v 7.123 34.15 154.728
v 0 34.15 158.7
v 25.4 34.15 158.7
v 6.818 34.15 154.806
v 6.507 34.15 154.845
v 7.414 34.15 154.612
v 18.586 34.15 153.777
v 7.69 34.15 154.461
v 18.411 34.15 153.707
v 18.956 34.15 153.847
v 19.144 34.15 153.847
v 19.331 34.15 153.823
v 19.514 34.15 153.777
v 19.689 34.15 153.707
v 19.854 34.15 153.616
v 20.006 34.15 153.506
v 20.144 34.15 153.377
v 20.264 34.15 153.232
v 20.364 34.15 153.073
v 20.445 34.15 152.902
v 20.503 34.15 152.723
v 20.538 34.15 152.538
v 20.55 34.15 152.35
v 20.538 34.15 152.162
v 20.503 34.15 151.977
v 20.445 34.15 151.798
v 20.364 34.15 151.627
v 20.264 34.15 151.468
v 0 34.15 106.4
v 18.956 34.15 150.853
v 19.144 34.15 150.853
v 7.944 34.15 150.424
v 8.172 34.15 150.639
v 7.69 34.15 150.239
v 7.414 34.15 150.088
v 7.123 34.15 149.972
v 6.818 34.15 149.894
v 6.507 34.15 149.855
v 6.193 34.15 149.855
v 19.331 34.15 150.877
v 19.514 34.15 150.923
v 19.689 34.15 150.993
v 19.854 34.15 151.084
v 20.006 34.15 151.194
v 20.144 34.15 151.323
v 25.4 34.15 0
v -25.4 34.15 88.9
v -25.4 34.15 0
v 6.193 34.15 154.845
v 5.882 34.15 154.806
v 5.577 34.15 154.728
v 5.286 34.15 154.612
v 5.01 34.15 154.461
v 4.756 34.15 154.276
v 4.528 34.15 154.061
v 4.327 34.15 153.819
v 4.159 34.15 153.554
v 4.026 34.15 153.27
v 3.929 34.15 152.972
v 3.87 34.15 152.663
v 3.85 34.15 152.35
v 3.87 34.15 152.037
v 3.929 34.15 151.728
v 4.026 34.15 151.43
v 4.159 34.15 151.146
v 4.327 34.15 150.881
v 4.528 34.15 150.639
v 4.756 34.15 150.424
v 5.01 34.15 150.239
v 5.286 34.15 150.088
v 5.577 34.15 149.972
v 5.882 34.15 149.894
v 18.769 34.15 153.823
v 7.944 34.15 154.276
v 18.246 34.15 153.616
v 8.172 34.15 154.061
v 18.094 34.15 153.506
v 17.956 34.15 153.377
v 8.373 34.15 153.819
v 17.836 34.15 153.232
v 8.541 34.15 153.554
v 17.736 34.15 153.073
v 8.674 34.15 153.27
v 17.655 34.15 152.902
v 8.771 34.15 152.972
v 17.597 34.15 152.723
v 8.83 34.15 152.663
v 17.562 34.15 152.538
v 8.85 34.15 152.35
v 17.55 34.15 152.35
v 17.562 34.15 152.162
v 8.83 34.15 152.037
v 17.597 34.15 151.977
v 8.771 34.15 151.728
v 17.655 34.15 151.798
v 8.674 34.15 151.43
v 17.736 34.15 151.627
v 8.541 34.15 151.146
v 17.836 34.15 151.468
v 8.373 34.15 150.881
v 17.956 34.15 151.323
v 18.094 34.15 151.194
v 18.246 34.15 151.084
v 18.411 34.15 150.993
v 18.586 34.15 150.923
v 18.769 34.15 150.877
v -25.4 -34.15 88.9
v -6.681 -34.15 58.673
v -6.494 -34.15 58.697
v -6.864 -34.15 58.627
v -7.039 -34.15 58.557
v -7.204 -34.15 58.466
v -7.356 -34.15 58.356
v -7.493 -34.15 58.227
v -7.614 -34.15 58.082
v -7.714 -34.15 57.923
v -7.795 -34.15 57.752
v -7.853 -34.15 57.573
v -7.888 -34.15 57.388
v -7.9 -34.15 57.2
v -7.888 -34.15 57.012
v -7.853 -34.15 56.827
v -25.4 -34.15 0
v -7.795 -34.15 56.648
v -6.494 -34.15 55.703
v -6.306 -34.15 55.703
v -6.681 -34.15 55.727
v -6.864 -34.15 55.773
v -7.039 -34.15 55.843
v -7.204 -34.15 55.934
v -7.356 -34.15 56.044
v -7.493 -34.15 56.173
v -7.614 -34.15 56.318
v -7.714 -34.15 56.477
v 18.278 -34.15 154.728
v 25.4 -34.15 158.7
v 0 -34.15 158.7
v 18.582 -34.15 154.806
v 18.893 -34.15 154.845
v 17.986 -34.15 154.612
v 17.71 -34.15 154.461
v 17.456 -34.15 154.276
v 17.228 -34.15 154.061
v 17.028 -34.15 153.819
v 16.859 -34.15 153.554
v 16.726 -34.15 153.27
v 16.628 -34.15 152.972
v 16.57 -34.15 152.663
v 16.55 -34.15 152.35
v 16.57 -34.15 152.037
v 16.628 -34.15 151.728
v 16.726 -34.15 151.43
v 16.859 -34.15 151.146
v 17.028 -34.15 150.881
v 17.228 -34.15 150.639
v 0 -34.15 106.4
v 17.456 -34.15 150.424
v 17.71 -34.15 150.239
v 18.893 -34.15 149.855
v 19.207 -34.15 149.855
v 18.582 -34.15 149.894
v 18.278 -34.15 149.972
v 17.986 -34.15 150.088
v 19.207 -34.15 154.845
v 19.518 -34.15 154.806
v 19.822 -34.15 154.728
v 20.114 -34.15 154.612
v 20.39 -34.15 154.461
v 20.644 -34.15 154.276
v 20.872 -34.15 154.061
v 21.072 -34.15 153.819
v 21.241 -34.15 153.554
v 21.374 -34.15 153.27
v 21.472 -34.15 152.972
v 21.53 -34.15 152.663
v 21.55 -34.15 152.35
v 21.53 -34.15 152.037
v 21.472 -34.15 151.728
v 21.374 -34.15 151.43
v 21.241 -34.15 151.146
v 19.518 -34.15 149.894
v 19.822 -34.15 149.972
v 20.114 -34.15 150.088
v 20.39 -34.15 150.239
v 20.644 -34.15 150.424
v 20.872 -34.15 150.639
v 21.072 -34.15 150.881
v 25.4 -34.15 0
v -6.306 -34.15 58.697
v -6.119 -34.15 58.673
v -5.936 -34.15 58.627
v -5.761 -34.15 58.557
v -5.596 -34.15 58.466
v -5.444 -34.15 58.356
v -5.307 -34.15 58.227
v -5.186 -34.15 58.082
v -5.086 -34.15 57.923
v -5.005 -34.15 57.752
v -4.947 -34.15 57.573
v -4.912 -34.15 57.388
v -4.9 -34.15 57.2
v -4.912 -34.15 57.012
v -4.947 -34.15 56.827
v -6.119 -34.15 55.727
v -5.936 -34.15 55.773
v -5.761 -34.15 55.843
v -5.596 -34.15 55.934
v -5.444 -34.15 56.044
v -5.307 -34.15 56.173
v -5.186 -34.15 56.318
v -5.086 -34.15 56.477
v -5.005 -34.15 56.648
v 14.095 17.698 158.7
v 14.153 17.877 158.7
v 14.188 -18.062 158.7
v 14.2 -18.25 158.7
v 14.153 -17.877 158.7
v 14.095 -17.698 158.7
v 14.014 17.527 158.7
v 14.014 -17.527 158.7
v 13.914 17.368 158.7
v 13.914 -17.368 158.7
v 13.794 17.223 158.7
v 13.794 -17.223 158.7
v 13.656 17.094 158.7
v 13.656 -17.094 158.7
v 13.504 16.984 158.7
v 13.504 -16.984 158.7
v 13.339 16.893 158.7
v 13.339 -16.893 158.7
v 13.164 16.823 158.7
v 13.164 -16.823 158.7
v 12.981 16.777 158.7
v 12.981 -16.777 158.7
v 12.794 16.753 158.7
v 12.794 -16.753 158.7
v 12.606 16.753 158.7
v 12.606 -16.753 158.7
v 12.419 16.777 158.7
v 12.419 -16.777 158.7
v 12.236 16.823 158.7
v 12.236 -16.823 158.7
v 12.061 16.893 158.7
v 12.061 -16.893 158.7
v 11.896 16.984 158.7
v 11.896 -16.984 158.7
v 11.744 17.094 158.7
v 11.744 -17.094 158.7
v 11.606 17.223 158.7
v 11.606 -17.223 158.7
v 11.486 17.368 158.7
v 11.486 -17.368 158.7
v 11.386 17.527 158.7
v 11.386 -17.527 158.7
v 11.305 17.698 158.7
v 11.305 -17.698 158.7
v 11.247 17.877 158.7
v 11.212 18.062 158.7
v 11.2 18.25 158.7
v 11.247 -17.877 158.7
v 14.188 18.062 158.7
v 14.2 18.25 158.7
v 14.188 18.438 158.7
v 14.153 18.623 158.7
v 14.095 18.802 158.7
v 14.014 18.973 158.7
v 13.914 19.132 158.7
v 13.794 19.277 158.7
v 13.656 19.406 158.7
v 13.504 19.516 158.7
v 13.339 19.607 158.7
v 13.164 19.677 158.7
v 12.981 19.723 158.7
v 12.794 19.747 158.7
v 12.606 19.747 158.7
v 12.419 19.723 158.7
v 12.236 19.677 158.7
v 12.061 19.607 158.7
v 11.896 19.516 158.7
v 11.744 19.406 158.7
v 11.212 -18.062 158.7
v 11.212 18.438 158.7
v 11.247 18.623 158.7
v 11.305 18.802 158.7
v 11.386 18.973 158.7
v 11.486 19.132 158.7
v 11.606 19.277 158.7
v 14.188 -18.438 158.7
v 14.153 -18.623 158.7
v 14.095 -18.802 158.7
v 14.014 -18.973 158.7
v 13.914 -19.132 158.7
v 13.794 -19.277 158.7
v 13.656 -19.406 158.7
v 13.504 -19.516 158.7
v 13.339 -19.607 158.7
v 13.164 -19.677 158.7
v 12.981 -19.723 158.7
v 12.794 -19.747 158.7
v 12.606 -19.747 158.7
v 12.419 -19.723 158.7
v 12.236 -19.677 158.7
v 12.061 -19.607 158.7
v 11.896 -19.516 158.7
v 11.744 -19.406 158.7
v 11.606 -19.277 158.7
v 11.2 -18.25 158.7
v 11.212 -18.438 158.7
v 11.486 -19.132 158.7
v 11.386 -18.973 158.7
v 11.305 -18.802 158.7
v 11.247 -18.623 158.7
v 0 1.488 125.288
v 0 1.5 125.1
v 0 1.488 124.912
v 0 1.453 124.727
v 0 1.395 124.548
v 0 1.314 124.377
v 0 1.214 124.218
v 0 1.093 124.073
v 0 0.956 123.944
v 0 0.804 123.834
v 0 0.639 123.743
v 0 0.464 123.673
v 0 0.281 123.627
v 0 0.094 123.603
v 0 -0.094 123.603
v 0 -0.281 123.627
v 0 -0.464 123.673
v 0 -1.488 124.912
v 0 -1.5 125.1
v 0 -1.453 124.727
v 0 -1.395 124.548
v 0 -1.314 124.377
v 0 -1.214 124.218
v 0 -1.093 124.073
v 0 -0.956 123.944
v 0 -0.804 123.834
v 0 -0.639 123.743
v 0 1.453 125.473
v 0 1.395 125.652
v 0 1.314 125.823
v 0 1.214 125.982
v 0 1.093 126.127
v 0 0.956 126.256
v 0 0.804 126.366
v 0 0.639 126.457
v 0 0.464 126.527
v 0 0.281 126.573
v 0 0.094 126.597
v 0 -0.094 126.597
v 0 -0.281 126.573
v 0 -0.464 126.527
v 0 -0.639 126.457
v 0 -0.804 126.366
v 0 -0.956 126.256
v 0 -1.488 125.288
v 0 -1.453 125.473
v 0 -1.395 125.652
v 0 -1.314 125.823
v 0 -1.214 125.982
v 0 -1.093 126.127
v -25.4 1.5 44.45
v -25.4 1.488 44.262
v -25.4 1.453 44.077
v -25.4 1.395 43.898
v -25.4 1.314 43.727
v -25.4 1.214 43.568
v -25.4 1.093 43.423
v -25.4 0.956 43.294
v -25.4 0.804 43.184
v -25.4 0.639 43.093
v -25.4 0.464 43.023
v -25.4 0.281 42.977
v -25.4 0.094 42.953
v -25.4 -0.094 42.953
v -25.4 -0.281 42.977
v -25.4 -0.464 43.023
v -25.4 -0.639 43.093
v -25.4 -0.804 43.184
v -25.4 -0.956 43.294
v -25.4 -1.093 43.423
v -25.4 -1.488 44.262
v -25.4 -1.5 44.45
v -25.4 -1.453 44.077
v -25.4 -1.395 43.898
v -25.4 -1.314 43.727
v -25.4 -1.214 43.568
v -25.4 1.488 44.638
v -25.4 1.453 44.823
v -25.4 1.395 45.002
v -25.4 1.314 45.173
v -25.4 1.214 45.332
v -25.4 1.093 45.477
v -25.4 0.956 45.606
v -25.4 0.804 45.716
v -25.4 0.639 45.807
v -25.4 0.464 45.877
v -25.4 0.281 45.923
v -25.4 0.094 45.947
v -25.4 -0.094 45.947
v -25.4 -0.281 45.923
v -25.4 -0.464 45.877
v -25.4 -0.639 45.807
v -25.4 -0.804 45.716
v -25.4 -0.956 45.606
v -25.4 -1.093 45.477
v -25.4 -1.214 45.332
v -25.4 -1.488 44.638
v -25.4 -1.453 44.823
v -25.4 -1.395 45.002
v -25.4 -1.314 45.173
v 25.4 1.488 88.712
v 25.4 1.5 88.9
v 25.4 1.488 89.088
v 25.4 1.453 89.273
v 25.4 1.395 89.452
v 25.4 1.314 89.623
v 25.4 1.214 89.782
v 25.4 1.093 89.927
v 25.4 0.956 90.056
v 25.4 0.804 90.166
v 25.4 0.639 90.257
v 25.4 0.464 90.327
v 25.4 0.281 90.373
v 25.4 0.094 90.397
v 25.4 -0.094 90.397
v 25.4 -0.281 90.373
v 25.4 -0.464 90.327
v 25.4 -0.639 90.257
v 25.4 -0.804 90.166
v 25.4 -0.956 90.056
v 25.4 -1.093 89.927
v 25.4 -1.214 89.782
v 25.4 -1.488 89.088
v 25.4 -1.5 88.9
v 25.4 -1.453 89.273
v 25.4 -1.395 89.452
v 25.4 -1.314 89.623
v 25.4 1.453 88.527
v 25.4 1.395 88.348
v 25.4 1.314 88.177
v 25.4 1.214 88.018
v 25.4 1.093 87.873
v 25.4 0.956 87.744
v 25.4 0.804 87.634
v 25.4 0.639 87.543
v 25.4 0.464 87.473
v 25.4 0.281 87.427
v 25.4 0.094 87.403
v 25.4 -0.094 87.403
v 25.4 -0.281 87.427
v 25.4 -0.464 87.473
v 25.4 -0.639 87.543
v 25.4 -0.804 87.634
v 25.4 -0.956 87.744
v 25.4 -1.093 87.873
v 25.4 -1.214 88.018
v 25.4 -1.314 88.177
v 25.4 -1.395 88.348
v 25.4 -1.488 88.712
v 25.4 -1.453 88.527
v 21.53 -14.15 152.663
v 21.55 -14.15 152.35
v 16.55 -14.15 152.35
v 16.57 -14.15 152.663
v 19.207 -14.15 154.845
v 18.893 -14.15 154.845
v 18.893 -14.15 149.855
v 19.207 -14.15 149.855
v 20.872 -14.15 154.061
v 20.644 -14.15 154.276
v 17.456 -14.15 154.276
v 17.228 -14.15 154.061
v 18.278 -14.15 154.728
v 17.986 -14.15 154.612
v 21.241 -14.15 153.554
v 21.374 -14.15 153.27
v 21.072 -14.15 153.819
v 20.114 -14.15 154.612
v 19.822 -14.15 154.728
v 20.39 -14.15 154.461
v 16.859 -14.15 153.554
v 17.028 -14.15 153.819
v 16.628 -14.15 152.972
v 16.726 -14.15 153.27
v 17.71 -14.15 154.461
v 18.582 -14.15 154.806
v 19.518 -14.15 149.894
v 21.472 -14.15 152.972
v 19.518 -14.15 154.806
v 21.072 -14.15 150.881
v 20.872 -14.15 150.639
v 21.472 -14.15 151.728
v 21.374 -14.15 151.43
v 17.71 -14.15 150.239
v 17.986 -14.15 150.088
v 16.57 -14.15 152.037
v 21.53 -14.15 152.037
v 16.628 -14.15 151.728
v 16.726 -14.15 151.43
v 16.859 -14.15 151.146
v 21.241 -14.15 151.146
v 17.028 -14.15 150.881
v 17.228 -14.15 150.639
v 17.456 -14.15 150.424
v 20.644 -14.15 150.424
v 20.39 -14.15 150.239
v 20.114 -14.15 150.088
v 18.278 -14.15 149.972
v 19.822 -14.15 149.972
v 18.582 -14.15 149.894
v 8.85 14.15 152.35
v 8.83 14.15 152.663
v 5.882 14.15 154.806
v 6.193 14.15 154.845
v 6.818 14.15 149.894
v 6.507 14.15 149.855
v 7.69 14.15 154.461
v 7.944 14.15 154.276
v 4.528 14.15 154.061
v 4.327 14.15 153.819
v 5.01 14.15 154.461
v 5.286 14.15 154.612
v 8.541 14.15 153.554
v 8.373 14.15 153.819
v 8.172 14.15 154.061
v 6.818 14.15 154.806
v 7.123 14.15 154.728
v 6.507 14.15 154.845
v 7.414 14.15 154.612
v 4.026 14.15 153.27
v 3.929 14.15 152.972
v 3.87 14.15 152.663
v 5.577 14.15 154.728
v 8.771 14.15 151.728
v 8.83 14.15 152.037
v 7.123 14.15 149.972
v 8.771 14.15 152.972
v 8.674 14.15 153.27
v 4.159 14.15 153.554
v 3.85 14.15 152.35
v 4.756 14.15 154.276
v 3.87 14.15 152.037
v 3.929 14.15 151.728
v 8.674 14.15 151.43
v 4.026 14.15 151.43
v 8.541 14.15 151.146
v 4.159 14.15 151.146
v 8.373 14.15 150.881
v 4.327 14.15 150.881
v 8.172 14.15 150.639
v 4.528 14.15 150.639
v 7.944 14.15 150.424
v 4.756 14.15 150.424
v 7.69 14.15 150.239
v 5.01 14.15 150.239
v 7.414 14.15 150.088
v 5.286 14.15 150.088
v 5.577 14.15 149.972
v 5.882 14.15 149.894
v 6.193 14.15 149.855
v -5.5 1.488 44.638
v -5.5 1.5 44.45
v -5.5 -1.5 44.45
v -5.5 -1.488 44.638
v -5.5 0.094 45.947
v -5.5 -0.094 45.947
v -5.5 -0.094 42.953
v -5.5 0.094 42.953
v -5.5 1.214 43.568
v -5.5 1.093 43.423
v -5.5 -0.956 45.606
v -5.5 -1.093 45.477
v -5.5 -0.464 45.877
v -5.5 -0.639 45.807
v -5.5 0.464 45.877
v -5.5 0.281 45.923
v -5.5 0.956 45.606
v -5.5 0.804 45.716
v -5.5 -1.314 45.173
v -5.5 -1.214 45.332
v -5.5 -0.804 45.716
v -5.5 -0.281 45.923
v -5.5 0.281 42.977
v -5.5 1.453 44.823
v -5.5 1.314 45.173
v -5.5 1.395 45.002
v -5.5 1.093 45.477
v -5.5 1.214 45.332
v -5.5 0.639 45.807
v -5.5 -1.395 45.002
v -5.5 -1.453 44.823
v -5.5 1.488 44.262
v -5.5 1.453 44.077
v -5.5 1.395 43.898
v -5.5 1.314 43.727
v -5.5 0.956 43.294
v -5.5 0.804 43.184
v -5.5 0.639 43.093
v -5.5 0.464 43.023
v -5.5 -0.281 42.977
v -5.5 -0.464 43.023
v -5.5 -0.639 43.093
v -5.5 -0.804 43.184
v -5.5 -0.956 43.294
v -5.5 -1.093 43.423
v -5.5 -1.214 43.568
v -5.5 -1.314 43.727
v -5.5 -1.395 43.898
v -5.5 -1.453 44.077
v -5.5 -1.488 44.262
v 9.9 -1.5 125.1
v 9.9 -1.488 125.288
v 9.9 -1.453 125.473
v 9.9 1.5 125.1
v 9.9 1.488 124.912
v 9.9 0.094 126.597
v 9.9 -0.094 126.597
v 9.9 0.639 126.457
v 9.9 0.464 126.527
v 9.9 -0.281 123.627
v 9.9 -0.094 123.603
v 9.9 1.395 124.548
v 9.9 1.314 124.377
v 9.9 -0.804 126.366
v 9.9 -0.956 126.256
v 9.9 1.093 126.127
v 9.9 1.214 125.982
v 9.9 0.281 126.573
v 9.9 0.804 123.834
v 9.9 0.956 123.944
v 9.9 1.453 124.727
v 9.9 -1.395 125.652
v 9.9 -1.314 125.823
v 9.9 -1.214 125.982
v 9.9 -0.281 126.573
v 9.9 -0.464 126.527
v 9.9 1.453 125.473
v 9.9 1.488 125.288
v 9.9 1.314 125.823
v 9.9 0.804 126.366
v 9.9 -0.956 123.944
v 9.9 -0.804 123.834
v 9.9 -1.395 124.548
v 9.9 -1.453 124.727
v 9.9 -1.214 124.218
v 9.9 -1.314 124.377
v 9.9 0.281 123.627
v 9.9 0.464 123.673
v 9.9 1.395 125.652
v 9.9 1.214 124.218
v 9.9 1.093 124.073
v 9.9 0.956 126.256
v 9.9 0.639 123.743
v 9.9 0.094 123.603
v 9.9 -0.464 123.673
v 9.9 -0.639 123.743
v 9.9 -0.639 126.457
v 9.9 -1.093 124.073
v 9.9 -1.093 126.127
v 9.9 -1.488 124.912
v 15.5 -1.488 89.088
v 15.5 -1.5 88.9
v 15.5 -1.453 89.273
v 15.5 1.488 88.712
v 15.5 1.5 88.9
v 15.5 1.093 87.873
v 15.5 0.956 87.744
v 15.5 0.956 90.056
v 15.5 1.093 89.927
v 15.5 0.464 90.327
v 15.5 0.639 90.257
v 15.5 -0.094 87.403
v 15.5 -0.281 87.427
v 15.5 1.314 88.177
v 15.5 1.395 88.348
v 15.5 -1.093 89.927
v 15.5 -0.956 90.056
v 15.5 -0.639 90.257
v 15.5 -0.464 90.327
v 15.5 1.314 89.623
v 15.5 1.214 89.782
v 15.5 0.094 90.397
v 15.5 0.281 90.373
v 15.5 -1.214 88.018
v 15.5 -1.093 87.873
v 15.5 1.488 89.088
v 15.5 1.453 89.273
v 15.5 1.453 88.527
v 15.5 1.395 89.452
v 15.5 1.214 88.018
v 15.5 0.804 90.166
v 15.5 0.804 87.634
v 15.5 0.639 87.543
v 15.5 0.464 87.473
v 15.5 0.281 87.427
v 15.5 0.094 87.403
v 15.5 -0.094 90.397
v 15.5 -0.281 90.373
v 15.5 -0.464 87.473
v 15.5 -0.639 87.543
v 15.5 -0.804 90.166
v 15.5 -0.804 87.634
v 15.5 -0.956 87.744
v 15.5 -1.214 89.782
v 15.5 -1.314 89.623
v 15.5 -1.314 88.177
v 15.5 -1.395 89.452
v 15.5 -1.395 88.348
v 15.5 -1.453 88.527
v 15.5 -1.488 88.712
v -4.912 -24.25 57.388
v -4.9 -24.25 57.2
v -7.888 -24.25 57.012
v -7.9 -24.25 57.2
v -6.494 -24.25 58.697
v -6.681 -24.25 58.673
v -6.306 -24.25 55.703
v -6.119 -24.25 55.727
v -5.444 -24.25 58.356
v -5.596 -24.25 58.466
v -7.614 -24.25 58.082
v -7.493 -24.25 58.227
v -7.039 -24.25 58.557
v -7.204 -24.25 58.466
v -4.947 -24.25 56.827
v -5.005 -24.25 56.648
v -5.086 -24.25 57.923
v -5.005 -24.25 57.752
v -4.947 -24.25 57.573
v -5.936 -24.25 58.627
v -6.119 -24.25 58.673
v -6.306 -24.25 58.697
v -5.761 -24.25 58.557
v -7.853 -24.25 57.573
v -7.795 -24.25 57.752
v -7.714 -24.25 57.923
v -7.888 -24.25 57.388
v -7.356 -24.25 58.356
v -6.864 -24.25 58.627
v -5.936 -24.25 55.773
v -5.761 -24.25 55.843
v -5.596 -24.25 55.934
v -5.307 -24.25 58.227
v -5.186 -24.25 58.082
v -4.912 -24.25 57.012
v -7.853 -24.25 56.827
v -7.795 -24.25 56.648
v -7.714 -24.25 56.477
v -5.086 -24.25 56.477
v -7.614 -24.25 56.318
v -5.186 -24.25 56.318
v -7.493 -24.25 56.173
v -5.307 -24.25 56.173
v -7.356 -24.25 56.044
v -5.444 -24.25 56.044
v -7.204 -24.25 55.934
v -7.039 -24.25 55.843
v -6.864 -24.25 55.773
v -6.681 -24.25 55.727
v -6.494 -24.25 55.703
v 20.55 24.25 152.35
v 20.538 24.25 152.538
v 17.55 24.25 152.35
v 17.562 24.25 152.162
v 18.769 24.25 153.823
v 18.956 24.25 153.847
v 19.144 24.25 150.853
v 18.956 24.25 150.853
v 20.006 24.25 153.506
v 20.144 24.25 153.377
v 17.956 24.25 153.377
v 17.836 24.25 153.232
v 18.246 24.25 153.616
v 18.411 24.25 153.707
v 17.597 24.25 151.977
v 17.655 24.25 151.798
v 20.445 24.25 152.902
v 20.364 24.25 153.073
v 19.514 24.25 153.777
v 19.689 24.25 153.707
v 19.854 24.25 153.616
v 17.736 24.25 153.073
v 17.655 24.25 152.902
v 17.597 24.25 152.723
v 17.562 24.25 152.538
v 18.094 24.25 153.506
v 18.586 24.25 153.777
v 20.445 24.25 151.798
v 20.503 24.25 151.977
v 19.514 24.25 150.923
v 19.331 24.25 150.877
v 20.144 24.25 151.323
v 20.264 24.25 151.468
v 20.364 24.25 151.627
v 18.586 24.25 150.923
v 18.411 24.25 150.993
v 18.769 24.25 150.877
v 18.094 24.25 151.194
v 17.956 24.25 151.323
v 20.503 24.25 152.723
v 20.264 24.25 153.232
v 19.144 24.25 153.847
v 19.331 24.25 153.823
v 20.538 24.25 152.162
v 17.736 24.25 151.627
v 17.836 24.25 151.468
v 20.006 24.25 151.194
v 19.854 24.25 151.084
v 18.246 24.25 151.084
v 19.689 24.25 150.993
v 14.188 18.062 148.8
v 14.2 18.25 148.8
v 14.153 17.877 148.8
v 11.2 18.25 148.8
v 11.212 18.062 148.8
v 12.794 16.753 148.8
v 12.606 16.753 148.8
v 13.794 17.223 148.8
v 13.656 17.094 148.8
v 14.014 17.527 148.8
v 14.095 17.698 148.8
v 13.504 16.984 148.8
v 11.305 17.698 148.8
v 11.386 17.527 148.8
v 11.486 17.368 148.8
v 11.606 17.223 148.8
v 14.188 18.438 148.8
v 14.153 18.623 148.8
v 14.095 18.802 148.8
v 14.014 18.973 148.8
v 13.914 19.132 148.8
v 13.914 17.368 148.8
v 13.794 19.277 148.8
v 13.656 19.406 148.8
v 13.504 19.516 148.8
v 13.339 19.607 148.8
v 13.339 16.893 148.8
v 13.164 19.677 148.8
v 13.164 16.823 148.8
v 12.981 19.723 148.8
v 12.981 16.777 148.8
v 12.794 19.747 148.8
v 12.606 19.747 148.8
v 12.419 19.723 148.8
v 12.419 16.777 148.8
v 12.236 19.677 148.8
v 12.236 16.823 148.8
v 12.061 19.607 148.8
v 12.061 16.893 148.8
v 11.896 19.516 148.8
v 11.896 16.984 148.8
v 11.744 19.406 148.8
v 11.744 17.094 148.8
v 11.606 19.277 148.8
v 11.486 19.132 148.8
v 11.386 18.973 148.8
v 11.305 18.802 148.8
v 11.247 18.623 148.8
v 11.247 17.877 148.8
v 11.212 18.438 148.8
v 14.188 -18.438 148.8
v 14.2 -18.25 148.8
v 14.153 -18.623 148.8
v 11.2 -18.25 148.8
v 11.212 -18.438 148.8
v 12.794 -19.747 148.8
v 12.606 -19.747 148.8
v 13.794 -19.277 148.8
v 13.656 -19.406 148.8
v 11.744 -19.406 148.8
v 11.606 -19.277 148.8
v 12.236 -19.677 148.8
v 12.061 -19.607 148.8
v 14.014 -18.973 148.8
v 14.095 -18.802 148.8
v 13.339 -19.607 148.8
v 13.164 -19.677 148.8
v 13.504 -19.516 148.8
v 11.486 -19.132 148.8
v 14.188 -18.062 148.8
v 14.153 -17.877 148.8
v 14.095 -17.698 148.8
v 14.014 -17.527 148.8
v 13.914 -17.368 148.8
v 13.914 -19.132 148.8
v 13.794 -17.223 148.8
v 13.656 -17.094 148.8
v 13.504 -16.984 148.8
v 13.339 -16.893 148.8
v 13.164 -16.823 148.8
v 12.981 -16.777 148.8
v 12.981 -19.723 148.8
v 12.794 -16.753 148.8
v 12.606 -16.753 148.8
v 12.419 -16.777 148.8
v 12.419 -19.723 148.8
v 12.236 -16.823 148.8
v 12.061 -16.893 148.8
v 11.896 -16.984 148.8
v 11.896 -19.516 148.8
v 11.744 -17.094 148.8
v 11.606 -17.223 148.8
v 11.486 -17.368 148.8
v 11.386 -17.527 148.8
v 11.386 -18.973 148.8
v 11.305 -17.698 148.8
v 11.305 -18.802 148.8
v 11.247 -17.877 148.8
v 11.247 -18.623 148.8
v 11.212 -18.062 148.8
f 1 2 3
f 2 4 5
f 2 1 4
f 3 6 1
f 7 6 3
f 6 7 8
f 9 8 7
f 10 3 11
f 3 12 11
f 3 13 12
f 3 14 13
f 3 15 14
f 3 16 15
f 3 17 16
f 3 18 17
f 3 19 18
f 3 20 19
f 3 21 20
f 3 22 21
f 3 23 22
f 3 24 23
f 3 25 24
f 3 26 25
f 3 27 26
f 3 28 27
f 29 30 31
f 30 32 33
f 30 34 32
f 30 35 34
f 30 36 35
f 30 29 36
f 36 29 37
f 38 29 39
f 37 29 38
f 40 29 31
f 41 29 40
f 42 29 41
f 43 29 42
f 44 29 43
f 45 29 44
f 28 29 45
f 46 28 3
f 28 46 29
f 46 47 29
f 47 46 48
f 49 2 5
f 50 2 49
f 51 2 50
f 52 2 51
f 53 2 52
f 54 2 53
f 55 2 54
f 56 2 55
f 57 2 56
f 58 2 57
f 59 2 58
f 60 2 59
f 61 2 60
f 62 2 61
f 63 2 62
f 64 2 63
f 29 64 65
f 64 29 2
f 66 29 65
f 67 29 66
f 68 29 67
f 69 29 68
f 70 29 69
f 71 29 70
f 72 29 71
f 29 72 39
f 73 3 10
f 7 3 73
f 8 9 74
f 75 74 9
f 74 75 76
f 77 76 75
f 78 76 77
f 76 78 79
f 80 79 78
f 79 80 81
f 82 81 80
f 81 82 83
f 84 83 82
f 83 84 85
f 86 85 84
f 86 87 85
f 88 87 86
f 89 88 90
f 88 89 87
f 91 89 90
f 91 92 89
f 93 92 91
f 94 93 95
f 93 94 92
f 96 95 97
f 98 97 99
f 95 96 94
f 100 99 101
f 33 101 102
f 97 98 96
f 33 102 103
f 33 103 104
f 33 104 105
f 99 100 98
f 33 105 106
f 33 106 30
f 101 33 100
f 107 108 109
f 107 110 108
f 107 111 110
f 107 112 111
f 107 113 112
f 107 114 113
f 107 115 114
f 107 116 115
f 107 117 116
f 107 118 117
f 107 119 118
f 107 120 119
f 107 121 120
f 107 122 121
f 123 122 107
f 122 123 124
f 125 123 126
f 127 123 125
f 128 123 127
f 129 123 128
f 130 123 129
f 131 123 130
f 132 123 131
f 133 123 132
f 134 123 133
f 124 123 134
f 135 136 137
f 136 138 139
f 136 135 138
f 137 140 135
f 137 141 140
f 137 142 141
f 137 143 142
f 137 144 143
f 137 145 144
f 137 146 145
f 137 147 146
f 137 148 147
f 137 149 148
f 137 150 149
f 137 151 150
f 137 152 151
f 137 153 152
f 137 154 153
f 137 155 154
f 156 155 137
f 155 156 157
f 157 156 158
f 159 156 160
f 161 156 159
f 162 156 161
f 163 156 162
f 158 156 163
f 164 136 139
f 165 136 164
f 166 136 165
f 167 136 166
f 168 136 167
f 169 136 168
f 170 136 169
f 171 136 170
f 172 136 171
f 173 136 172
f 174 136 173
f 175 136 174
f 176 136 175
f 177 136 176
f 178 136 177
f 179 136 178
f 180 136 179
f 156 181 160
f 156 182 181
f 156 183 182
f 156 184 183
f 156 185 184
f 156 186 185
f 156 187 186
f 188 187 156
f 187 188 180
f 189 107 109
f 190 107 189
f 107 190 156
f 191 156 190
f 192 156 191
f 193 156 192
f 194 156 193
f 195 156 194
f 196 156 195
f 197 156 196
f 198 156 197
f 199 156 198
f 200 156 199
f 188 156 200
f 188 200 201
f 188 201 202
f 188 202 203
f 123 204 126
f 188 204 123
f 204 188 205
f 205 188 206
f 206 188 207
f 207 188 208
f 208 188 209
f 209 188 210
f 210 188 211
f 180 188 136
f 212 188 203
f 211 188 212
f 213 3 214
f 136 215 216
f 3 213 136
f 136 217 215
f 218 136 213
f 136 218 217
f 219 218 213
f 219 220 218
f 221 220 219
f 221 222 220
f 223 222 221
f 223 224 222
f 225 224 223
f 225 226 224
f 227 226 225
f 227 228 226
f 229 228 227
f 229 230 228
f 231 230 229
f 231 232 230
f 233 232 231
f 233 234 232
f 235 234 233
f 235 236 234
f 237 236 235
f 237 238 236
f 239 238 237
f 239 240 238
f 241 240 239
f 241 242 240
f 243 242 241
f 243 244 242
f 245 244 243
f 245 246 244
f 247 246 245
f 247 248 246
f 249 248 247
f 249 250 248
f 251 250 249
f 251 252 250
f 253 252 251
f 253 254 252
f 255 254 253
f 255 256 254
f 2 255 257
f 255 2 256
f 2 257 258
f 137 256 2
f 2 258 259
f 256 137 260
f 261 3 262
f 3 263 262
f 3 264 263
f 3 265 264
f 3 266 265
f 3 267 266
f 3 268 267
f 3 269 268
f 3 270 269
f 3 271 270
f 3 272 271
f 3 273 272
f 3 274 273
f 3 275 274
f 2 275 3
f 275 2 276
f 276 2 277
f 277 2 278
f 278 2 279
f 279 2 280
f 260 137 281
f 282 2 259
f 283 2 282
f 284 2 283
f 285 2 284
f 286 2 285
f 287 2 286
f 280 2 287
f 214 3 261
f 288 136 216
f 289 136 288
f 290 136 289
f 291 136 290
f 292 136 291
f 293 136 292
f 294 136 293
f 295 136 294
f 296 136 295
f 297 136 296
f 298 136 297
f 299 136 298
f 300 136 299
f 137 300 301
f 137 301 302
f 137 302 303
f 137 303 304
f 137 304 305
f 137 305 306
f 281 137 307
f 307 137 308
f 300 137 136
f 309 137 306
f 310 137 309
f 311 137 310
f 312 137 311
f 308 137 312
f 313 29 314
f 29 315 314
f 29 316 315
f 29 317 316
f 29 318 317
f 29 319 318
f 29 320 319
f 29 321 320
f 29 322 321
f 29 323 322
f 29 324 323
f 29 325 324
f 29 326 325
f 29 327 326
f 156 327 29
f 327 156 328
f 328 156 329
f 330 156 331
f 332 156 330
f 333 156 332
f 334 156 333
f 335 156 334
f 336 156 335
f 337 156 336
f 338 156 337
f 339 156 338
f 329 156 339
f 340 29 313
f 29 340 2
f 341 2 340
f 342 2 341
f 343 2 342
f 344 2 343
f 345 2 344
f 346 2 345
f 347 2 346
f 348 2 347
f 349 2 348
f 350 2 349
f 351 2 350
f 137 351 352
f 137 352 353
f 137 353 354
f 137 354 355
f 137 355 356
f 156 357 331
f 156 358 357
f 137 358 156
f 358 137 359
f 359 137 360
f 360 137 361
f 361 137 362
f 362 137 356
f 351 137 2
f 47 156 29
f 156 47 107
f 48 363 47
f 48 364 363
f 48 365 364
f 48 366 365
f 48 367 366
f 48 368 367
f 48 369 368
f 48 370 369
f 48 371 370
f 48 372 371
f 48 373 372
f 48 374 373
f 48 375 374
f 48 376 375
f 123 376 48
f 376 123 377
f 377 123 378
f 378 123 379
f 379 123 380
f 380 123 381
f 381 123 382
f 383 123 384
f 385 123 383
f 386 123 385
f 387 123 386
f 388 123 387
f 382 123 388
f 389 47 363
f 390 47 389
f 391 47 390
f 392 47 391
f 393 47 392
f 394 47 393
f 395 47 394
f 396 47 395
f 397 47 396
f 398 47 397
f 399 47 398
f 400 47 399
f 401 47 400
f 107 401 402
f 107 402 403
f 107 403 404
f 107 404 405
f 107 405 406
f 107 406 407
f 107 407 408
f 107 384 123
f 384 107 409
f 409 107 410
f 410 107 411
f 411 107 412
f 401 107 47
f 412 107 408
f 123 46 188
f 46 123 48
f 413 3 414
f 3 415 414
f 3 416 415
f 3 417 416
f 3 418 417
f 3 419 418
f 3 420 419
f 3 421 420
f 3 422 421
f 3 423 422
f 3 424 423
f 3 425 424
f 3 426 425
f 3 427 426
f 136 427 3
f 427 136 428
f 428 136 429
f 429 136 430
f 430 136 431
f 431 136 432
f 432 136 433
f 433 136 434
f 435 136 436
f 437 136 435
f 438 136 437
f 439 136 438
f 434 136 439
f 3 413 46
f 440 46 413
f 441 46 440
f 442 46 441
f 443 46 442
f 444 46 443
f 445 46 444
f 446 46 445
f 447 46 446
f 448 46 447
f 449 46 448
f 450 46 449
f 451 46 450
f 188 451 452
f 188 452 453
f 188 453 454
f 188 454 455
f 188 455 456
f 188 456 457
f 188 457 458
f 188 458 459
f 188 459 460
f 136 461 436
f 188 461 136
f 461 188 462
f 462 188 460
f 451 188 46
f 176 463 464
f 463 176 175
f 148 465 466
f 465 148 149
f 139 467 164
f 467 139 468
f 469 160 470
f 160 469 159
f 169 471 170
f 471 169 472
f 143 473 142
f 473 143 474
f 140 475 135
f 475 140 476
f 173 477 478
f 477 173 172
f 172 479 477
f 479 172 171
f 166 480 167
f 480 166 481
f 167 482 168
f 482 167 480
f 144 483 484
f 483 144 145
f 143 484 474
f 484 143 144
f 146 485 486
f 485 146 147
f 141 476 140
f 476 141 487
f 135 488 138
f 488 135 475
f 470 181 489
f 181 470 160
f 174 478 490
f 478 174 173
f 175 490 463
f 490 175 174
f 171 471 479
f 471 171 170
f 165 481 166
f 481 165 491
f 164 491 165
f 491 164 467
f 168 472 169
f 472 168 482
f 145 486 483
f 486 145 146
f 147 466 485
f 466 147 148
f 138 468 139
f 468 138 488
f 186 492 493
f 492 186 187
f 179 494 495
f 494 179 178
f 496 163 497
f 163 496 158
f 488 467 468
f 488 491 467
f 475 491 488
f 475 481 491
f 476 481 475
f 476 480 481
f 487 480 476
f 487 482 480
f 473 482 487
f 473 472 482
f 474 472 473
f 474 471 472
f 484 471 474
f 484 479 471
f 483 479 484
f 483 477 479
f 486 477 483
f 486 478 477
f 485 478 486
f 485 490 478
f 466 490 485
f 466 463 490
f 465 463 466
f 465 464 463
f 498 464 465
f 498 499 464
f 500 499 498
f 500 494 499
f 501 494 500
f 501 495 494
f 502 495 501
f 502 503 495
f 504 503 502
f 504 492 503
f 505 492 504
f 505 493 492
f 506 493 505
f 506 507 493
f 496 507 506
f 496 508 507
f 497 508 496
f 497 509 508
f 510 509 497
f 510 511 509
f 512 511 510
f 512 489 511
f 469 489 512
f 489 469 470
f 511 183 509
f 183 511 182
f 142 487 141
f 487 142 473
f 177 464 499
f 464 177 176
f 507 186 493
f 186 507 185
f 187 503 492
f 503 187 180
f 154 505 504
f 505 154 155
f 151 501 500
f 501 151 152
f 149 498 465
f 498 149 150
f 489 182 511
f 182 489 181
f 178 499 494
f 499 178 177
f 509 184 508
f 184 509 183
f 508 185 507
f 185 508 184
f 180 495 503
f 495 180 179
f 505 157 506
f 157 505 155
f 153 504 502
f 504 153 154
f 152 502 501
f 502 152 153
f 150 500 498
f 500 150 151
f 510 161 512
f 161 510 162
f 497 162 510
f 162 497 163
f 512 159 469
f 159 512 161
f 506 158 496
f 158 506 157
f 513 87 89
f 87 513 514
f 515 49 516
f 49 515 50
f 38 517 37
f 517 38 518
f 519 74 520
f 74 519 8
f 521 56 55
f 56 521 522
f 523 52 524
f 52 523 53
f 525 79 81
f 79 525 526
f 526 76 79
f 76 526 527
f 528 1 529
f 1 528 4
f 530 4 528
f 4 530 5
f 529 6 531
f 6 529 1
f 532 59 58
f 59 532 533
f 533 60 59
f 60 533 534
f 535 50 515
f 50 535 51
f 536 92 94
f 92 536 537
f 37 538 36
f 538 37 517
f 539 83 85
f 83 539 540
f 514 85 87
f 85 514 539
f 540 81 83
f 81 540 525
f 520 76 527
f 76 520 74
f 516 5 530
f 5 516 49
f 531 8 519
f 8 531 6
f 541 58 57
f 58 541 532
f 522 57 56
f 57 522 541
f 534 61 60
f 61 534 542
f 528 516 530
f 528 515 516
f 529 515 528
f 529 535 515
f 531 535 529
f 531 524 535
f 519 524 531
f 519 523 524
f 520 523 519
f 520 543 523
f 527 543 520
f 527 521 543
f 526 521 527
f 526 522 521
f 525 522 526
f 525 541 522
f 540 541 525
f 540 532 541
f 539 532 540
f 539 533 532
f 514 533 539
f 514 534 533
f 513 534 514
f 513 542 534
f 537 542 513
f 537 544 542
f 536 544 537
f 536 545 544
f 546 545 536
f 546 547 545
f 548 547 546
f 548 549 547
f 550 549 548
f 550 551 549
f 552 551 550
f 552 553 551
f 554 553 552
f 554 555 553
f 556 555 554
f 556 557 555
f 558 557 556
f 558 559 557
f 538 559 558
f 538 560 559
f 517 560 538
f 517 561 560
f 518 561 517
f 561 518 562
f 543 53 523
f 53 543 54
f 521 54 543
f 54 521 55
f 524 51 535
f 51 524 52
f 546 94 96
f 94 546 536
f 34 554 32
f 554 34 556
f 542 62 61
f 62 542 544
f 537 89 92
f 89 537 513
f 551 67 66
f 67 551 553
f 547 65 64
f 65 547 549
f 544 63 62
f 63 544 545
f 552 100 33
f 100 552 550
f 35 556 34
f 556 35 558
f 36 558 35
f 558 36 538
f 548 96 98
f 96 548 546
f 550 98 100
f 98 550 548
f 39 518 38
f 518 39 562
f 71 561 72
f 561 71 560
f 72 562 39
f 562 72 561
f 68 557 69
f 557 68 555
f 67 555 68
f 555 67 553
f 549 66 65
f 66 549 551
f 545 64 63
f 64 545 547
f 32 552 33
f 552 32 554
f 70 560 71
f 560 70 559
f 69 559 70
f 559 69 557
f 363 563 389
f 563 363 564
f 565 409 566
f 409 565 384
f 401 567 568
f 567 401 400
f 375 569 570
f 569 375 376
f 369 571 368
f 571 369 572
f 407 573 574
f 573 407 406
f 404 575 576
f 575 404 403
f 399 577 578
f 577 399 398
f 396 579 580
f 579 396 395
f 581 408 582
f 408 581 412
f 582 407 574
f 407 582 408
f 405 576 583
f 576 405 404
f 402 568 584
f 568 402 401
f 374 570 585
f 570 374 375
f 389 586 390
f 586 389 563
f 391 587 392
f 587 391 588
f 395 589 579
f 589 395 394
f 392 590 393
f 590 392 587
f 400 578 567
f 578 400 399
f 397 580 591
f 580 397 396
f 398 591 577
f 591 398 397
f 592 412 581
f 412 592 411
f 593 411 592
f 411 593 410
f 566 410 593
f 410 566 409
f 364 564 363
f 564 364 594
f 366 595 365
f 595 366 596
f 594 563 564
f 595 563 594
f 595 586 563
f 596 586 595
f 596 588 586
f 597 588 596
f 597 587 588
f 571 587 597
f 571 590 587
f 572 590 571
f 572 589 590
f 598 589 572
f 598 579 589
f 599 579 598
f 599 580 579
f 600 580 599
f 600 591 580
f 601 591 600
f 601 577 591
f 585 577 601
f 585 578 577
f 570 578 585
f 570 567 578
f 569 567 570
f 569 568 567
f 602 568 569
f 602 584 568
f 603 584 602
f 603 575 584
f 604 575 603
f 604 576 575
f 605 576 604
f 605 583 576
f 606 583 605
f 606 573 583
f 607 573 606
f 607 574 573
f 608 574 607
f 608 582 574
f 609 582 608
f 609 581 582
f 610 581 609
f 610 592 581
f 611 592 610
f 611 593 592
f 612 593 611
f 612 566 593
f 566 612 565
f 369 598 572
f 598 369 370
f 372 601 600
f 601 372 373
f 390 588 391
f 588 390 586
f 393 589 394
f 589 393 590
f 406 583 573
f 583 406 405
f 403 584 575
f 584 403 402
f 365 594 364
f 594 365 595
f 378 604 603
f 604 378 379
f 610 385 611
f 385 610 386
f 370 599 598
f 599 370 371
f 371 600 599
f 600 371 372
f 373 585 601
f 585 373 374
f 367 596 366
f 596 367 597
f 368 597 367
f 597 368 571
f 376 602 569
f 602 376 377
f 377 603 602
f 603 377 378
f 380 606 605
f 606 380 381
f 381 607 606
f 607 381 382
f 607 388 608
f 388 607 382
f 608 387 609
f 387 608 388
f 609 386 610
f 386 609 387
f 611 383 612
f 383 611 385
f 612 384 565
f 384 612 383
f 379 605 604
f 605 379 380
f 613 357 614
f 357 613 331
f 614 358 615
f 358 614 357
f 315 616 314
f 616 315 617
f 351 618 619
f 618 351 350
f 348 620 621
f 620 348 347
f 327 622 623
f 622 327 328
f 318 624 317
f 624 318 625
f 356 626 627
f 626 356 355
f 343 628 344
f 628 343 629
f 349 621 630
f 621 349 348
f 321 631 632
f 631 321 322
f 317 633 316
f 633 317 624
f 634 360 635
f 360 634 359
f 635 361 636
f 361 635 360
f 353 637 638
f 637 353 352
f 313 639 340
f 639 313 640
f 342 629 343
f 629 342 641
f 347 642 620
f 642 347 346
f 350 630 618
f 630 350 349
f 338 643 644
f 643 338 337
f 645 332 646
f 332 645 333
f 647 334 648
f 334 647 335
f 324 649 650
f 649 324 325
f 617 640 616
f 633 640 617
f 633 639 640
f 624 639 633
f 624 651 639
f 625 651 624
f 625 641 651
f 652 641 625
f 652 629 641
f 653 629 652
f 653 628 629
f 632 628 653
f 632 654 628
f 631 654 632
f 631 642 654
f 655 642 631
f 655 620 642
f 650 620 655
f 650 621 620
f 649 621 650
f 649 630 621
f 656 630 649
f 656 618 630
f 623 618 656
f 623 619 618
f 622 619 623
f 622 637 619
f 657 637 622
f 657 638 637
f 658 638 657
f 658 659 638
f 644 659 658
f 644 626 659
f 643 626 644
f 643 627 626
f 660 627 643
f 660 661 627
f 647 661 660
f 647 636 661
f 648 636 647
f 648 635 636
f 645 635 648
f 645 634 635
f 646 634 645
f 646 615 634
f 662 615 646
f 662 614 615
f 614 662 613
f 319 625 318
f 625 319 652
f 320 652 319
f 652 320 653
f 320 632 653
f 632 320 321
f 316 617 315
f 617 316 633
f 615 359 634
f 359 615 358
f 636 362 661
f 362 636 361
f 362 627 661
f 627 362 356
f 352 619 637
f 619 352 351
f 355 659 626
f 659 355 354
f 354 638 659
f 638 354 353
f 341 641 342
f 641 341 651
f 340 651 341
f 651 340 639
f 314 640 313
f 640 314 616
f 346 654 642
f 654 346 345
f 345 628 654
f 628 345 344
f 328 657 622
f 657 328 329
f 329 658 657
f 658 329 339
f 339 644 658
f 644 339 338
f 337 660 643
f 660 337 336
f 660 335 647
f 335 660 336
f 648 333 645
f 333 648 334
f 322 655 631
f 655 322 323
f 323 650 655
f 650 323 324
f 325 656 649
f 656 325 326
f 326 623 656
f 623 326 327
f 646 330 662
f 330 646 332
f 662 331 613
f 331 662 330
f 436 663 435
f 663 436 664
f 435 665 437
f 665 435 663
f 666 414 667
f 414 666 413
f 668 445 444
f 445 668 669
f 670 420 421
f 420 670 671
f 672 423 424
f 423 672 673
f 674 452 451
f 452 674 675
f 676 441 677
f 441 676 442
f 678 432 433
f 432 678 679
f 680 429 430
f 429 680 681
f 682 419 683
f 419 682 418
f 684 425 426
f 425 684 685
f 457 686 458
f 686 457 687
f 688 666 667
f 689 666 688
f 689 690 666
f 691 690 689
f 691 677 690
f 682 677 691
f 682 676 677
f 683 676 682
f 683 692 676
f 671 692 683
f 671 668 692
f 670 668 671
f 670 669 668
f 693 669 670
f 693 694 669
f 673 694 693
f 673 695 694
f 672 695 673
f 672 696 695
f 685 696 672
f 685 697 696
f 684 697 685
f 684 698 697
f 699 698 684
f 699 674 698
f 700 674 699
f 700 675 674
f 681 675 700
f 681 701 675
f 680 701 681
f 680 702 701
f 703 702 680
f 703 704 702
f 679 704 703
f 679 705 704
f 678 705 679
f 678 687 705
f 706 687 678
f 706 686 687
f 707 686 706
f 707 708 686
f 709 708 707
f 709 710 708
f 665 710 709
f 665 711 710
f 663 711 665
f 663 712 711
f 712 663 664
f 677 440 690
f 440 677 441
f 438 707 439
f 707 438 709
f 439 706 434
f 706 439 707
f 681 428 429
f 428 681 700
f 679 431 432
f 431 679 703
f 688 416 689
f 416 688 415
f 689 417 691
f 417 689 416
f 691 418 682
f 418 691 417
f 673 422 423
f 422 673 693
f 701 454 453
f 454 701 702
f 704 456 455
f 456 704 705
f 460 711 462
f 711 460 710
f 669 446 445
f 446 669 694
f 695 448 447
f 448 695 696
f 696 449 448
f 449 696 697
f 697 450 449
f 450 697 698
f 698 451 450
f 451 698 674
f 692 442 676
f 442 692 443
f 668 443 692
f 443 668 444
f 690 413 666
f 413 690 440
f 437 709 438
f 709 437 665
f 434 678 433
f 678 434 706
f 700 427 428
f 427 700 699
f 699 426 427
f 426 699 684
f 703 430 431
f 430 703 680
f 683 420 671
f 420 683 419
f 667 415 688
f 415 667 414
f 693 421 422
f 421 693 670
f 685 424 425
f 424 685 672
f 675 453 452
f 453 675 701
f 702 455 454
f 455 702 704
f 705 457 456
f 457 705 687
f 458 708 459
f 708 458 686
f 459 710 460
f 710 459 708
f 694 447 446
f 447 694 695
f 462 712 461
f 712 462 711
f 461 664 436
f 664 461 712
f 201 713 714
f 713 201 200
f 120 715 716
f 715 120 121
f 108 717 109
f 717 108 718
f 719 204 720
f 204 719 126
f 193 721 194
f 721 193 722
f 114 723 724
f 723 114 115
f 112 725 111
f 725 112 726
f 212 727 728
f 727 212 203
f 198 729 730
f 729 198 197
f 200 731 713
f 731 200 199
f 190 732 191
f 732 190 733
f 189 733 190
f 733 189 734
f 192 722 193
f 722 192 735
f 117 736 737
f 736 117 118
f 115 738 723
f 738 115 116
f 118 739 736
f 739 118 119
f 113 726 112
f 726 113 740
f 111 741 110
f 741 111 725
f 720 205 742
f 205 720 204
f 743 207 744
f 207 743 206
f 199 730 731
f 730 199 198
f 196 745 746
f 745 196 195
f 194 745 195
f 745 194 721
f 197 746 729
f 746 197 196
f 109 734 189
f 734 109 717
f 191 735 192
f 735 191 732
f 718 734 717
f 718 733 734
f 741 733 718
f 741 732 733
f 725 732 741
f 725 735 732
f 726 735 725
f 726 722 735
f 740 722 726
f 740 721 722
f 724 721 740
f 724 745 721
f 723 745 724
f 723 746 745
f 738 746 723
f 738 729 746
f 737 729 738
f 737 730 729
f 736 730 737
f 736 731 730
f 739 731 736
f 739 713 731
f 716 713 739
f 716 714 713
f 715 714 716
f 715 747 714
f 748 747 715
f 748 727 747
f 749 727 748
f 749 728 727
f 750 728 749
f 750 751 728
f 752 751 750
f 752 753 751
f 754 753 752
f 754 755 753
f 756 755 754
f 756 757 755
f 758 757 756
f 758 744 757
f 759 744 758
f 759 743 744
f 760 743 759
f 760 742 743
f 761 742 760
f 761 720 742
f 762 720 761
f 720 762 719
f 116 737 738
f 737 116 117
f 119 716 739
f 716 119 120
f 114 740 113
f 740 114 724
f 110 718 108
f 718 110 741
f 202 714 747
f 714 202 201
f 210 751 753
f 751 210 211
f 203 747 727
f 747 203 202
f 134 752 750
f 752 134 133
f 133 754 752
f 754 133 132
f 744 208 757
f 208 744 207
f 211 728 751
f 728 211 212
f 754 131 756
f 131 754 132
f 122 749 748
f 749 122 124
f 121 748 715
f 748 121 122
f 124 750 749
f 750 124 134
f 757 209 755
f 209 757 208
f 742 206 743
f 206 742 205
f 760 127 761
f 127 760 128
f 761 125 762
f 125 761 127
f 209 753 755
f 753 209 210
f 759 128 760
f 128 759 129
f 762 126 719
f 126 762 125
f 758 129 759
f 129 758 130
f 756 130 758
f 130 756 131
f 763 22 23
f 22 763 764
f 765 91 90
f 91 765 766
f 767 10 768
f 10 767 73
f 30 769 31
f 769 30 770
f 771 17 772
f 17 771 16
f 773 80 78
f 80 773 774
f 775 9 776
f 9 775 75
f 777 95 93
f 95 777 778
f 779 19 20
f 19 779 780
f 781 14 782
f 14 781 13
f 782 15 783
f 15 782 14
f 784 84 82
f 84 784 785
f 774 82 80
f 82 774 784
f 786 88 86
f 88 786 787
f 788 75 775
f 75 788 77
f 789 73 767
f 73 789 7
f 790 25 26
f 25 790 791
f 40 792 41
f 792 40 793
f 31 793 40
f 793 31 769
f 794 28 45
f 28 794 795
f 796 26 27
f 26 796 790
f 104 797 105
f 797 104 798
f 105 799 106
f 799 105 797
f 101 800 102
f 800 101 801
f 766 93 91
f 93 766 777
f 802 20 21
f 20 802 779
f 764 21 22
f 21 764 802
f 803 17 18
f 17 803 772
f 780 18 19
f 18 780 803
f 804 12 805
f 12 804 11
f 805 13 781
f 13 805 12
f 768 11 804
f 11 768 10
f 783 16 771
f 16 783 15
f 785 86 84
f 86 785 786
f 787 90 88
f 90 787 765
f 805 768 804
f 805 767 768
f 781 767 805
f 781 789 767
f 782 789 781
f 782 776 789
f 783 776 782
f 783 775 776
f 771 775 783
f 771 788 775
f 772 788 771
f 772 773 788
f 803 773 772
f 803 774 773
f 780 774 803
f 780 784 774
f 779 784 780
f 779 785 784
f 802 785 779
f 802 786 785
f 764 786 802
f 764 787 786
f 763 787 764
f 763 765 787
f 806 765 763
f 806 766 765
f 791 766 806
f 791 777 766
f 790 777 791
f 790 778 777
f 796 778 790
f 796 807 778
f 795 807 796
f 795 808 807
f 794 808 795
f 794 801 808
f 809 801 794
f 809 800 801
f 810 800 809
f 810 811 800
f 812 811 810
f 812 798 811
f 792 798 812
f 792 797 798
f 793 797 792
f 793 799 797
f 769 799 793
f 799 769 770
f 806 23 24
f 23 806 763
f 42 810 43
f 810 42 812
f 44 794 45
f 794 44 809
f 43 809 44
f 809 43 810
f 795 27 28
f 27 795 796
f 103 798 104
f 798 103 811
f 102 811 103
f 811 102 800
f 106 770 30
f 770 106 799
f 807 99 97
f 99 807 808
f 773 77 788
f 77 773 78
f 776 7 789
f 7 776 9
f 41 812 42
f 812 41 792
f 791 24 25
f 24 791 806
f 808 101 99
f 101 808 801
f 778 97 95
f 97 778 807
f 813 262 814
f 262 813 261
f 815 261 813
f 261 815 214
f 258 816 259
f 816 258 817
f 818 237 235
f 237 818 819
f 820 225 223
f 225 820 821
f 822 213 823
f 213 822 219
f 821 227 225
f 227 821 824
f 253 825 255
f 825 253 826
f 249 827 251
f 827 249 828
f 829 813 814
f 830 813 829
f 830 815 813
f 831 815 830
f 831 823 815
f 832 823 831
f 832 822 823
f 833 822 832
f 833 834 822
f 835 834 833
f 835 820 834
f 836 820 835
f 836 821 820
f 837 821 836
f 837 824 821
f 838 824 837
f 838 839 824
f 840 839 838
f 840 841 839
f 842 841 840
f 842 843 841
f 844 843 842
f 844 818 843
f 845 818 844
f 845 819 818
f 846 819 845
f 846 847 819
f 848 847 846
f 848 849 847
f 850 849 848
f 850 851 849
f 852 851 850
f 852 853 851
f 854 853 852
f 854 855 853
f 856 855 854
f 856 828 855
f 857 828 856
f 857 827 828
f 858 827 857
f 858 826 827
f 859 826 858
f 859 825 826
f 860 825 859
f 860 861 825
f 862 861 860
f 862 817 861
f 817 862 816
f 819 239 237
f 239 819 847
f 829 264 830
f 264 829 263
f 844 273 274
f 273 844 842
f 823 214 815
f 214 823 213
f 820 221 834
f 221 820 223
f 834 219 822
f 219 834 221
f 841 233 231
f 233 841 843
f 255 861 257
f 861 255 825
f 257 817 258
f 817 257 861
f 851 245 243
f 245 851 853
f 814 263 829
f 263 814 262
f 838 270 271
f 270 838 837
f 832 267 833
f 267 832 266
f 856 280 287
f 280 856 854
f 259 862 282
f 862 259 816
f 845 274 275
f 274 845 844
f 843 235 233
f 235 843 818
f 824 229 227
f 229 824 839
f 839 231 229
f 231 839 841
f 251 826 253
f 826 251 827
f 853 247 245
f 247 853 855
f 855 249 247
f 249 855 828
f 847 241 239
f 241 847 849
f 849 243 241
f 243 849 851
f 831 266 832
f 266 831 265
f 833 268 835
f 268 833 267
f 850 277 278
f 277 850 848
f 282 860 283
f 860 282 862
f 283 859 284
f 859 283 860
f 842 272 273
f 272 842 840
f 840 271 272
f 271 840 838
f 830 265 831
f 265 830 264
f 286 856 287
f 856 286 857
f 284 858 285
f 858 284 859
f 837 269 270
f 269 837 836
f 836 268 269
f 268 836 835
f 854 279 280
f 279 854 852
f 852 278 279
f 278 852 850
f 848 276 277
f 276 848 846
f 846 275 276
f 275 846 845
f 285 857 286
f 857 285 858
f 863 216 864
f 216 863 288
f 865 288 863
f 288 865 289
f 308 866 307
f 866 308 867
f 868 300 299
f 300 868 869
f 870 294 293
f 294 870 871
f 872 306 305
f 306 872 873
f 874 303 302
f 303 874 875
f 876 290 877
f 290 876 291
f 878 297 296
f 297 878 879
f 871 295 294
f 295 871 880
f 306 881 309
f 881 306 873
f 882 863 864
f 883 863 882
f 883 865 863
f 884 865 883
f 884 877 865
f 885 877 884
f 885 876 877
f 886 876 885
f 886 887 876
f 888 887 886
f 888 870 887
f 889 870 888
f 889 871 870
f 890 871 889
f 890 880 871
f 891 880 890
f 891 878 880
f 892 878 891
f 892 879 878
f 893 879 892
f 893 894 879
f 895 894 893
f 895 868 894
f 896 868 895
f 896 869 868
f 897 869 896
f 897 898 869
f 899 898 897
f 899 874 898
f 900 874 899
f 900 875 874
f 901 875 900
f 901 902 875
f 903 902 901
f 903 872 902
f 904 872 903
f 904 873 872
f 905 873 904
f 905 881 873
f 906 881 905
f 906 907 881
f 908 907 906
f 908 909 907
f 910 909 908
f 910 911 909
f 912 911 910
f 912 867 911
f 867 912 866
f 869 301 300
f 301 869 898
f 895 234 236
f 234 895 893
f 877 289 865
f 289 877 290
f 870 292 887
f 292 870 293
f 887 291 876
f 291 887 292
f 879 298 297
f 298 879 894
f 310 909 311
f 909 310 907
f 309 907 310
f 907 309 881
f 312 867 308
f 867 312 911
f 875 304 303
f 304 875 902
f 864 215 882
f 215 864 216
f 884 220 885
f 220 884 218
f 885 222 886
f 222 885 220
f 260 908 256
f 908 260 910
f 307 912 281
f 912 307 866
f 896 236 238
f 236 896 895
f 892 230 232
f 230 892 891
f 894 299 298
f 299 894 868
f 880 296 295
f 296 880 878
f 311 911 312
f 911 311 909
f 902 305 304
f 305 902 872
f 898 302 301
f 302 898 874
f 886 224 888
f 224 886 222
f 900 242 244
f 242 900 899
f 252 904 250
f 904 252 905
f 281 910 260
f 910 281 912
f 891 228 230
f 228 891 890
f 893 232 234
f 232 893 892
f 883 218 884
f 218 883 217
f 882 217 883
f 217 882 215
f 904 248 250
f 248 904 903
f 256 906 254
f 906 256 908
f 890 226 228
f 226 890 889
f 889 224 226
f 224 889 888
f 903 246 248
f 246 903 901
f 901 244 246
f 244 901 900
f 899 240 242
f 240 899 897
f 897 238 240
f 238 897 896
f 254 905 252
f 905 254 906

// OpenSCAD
// Based on http://www.gbfans.com/wiki/File:Stefan%27s_Proton_Pack_Plans_Page_6.jpg

$fn = 50;

rod_diam = 5.0; //~5mm knitting needle ;-)
screw_diam = 3.0;

translate([-50.8/2,68.3/2,0])
rotate([90,0,0])
difference() {
    linear_extrude(height=68.3)
    polygon([
        [0,     0],
        [50.8,  0],
        [50.8,  158.7],
        [25.4,  158.7],
        [25.4,  106.4],
        [0,     88.9]
    ]);
    
    // hole for long rod
    translate([
        25.4+((50.8-25.4)/4*3),
        158.7-(50.8-25.4)/4,
        48.3])
    cylinder(d=rod_diam,h=20.1);
    // hole for short rod
    translate([
        25.4+((50.8-25.4)/4),
        158.7-(50.8-25.4)/4,
        -0.1])
    cylinder(d=rod_diam,h=20.1);
    
    // reference hole for Dale PH 25 resistor
    translate([-0.1,88.9/2,68.3/2])
    rotate([0,90,0])
    cylinder(d=screw_diam, h=20);

    //reference hole for Dale RH 25
    translate([35.3,125.1,68.3/2])
    rotate([0,-90,0])
    cylinder(d=screw_diam,h=10);

    // reference hole for Dale RH 50
    translate([50.9,88.9,68.3/2])
    rotate([0,-90,0])
    cylinder(d=screw_diam,h=10);

    // reference hole for legris elbow
    translate([19,57.2,58.4])
    cylinder(d=screw_diam,h=10);

    // reference hole for tube fitting
    translate([
        25.4+((50.8-25.4)/4*3),
        158.7-(50.8-25.4)/4,
        -0.1])
    cylinder(d=screw_diam,h=10);

    //screw holes for top plate
    translate([38.1,158.8,15.9])
    rotate([90,0,0])
    cylinder(d=screw_diam,h=10);
    translate([38.1,158.8,15.9+36.5])
    rotate([90,0,0])
    cylinder(d=screw_diam,h=10);
}
